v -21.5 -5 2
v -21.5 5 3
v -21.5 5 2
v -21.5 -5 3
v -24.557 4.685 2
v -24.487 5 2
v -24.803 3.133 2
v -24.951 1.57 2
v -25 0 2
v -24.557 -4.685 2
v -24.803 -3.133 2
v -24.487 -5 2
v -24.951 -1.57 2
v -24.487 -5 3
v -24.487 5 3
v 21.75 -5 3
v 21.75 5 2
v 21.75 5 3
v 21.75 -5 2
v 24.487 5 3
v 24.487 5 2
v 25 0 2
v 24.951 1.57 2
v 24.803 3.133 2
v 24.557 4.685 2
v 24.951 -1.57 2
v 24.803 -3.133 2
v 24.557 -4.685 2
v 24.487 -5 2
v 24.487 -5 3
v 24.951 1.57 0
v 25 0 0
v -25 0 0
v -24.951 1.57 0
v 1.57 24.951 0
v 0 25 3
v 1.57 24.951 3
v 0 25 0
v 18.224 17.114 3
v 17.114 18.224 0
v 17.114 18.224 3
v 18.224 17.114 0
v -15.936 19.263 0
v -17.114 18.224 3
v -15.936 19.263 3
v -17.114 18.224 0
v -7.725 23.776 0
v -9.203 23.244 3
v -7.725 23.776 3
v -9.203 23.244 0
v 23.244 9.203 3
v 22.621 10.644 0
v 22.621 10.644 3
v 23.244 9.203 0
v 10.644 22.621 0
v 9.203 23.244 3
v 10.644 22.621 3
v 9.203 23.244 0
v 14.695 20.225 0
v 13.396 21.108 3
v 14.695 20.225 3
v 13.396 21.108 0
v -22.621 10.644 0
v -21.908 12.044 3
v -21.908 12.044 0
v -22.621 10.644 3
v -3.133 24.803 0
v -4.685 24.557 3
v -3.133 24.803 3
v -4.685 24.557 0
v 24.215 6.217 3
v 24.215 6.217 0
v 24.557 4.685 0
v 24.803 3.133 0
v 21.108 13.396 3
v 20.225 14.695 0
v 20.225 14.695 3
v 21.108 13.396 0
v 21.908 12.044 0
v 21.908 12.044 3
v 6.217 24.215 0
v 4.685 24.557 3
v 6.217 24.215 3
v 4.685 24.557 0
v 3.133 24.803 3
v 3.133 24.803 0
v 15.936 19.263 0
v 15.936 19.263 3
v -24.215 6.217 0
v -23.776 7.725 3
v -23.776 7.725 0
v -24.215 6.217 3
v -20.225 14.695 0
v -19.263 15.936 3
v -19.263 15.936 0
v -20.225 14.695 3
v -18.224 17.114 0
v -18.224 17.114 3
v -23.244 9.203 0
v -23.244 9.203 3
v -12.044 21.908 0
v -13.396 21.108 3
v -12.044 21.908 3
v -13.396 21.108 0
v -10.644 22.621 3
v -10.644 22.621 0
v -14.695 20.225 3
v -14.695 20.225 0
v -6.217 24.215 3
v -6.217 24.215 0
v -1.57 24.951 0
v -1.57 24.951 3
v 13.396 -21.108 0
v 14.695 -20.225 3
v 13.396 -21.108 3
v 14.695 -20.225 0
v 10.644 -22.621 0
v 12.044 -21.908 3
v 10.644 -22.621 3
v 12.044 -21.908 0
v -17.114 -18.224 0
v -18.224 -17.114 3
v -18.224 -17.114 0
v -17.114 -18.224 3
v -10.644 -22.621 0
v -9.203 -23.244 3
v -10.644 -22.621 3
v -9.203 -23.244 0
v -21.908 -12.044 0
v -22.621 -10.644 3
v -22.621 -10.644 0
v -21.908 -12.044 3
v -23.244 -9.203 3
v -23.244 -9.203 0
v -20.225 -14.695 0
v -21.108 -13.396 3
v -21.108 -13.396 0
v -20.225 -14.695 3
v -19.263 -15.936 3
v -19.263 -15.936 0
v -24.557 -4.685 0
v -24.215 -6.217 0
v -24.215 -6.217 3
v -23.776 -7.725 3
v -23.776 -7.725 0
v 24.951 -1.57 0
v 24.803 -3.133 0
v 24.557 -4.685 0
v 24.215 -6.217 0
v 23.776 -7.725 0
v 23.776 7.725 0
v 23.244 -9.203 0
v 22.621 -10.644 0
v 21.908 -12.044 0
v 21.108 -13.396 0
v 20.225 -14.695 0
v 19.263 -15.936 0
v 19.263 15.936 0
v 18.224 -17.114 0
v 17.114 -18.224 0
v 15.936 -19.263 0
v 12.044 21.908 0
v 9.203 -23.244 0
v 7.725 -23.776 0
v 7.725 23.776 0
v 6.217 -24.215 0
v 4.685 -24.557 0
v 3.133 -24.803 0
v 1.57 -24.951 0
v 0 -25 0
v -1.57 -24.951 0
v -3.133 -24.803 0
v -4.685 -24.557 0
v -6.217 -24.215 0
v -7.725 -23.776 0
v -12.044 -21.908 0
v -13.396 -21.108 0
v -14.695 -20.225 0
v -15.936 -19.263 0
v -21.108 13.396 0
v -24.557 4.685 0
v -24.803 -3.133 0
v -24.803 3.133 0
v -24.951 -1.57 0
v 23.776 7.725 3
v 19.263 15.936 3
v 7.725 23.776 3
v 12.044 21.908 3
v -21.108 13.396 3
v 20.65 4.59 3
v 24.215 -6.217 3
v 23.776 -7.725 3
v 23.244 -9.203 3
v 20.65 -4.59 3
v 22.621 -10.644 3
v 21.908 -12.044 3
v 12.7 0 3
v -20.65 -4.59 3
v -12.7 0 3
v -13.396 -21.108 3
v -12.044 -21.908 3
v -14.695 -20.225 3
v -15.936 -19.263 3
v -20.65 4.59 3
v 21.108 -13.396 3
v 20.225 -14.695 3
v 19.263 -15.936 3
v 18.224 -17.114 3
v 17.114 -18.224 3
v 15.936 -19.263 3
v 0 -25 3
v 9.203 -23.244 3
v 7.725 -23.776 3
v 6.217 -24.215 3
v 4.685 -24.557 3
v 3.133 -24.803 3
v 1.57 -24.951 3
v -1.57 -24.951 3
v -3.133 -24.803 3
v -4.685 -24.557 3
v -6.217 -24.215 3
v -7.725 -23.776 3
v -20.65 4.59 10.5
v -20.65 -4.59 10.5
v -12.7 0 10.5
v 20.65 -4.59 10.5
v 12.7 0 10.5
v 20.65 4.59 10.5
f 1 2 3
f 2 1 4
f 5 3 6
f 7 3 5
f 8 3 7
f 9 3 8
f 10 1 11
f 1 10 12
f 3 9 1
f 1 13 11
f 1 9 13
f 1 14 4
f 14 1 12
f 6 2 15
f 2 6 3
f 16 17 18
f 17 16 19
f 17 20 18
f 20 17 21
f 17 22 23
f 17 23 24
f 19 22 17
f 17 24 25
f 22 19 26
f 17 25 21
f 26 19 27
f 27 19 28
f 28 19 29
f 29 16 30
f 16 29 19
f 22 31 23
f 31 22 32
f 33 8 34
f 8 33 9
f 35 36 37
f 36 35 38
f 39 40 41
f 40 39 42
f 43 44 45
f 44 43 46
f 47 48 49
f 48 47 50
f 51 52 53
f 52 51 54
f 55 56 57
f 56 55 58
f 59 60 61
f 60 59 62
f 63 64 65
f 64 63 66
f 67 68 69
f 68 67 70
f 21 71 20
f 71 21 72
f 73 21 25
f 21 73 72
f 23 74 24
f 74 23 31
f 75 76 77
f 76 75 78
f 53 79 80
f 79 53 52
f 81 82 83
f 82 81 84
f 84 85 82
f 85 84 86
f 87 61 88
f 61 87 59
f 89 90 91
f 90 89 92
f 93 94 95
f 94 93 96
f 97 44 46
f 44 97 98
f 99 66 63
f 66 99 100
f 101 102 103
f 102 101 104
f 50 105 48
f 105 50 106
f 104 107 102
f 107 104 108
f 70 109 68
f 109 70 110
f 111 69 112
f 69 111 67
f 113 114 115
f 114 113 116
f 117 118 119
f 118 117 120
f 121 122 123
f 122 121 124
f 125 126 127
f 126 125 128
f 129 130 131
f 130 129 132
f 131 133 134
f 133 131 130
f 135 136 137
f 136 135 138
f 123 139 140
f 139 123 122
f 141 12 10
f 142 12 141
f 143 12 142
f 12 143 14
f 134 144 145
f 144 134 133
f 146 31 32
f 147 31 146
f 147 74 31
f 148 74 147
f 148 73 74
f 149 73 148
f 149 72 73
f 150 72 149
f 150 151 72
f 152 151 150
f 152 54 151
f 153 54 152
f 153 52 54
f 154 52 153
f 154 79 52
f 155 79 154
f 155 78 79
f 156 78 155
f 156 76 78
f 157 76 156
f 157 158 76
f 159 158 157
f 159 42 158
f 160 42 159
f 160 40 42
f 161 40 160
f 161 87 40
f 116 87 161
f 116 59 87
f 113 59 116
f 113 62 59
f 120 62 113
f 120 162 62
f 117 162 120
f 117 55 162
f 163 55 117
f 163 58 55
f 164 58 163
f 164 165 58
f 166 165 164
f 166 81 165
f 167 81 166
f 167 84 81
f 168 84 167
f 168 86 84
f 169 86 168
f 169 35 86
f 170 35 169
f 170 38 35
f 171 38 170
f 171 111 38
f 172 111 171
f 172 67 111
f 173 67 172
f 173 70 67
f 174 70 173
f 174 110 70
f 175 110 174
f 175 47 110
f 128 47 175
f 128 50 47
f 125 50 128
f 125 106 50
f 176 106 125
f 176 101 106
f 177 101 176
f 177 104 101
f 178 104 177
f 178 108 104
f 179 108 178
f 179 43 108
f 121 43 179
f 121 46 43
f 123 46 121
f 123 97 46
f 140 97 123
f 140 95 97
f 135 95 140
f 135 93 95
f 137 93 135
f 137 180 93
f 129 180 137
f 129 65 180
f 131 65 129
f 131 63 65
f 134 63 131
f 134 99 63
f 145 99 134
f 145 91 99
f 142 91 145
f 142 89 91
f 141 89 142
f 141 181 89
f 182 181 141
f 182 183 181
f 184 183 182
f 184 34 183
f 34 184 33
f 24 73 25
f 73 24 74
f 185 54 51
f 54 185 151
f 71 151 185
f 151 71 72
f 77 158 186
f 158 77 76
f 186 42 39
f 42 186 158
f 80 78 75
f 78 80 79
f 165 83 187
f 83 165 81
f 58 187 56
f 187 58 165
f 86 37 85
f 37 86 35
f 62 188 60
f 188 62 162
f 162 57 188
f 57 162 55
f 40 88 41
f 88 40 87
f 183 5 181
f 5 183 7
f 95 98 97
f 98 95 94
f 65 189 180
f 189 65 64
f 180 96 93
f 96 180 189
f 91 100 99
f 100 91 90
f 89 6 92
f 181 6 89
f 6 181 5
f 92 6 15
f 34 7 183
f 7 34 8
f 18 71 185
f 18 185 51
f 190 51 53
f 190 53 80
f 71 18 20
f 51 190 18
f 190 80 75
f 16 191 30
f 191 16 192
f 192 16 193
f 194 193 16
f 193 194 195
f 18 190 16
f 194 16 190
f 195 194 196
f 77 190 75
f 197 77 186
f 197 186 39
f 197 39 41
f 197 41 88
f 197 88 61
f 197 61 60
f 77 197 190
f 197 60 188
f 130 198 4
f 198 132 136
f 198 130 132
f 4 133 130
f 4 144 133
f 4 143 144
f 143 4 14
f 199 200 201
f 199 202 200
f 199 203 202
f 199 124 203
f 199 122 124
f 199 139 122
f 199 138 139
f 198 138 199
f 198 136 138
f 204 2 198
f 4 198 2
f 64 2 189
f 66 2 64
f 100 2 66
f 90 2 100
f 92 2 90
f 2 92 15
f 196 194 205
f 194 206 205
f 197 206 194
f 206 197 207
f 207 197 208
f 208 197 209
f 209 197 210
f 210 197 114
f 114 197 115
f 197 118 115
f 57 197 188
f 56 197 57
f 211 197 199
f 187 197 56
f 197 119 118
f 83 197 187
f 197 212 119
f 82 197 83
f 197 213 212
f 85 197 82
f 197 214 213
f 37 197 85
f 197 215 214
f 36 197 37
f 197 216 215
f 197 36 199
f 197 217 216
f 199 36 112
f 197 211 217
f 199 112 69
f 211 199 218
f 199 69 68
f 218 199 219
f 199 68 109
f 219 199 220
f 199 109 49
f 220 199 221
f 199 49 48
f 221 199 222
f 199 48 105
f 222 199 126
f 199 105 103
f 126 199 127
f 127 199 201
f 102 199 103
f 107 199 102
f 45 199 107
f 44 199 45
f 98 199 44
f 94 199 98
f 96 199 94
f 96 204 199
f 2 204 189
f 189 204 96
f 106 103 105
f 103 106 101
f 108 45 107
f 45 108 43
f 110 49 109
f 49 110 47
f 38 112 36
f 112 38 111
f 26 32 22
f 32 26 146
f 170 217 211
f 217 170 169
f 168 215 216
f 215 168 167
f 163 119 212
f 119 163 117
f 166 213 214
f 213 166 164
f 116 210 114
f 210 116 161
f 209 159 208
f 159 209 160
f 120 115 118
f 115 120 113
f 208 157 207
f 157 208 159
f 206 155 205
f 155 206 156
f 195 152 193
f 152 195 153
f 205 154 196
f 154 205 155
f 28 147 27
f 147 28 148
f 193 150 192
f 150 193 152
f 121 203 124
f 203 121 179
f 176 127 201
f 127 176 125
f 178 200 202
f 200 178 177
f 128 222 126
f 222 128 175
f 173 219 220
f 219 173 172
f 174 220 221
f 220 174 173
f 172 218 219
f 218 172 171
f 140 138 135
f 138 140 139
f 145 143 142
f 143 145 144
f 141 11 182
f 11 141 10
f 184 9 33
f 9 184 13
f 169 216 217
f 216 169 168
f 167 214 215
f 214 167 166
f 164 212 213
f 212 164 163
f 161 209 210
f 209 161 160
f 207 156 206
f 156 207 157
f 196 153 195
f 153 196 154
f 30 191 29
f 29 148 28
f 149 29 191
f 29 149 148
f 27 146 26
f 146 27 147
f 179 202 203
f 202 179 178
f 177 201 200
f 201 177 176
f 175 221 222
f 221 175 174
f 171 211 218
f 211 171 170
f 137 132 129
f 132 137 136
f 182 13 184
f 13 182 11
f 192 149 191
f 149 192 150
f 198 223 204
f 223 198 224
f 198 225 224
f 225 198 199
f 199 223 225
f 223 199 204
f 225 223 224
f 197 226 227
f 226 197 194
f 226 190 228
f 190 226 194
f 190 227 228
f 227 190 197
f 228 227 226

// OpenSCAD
// file: utils/triangle_system.scad
//triangle_tube(20, 5, 5);
module triangle_tube(height,radius,wall)
{
  tubify(radius,wall) triangle_prism(height,radius);
}

//Tubifies any regular prism
module tubify(radius,wall)
{
  difference()
  {
    children(0);
    translate([0, 0, -0.1]) scale([(radius-wall)/radius, (radius-wall)/radius, 2]) children(0);
  }
}

module triangle_prism(height,radius)
{
  linear_extrude(height=height) triangle(radius);
}

module triangle(radius)
{
  o=radius/2;		//equivalent to radius*sin(30)
  a=radius*sqrt(3)/2;	//equivalent to radius*cos(30)
  polygon(points=[[-a,-o],[0,radius],[a,-o]],paths=[[0,1,2]]);
}
// main file
/**
 * Info TODO
 * Interzonas.info create piece mishtohit
 **/

//utils triangle suport piece
include <utils/triangle_system.scad>;

//Const cylinder
cylinder_dim = 25;
height = 3;
pathRadius=36/2;
num=2;


/**
* Init the piece
**/
main();
module main() {
  difference() {
    cylinder_base(cylinder_dim, height);
    tabs(pathRadius, num, height);
  }
  separacion_cilindro(pathRadius, num, height);
}


/**
* Modulo create triagle support
* Params Distence bwteeen of support, num of support, height of support
**/
module separacion_cilindro(distancia, numero, alt) {
  triangle_data = [10.5, 5.3, 5.3, -90];
  for (i=[1:numero])  {
    translate([distancia*cos(i*(360/numero)),distancia*sin(i*(360/numero)),0]){
      if(i == 1){
        colores = "red";
        color(colores) {
          triangle_base(triangle_data[0], triangle_data[1], triangle_data[2], triangle_data[3]);
        }
      } else {
        colores = "green";
        color(colores) {
          triangle_base(triangle_data[0], triangle_data[1], triangle_data[2], -30);
        }
      }
    }
  }
}

/**
* Modulo create tabs of cap
**/
module tabs(distancia, numero, alt) {
  tabs_dimensions = [4, 10, 2.5];
  position = [-7.5, -5, 2];
  position_x = position[0];
  position_x_opos = abs(position_x) / 2;
  for (i=[1:numero])  {
    translate([distancia*cos(i*(360/numero)),distancia*sin(i*(360/numero)),0]){
      if(i == 1){
        translate([-7.5, -5, 2]) {
          cube(size=tabs_dimensions);
        }

      } else {
        translate([position_x_opos, position[1], position[2]]) {
          cube(size=tabs_dimensions);
        }

      }
    }
  }
}

/**
* Modulo  cylinder base
**/
module cylinder_base(diamentro, height) {
  cylinder(r=diamentro, h=height, $fn=100);
}

module triangle_base(height, radio_exterior, radio_interior, rotate_angle){
  rotate(rotate_angle){
    triangle_tube(height, radio_exterior, radio_interior);
  }
}
